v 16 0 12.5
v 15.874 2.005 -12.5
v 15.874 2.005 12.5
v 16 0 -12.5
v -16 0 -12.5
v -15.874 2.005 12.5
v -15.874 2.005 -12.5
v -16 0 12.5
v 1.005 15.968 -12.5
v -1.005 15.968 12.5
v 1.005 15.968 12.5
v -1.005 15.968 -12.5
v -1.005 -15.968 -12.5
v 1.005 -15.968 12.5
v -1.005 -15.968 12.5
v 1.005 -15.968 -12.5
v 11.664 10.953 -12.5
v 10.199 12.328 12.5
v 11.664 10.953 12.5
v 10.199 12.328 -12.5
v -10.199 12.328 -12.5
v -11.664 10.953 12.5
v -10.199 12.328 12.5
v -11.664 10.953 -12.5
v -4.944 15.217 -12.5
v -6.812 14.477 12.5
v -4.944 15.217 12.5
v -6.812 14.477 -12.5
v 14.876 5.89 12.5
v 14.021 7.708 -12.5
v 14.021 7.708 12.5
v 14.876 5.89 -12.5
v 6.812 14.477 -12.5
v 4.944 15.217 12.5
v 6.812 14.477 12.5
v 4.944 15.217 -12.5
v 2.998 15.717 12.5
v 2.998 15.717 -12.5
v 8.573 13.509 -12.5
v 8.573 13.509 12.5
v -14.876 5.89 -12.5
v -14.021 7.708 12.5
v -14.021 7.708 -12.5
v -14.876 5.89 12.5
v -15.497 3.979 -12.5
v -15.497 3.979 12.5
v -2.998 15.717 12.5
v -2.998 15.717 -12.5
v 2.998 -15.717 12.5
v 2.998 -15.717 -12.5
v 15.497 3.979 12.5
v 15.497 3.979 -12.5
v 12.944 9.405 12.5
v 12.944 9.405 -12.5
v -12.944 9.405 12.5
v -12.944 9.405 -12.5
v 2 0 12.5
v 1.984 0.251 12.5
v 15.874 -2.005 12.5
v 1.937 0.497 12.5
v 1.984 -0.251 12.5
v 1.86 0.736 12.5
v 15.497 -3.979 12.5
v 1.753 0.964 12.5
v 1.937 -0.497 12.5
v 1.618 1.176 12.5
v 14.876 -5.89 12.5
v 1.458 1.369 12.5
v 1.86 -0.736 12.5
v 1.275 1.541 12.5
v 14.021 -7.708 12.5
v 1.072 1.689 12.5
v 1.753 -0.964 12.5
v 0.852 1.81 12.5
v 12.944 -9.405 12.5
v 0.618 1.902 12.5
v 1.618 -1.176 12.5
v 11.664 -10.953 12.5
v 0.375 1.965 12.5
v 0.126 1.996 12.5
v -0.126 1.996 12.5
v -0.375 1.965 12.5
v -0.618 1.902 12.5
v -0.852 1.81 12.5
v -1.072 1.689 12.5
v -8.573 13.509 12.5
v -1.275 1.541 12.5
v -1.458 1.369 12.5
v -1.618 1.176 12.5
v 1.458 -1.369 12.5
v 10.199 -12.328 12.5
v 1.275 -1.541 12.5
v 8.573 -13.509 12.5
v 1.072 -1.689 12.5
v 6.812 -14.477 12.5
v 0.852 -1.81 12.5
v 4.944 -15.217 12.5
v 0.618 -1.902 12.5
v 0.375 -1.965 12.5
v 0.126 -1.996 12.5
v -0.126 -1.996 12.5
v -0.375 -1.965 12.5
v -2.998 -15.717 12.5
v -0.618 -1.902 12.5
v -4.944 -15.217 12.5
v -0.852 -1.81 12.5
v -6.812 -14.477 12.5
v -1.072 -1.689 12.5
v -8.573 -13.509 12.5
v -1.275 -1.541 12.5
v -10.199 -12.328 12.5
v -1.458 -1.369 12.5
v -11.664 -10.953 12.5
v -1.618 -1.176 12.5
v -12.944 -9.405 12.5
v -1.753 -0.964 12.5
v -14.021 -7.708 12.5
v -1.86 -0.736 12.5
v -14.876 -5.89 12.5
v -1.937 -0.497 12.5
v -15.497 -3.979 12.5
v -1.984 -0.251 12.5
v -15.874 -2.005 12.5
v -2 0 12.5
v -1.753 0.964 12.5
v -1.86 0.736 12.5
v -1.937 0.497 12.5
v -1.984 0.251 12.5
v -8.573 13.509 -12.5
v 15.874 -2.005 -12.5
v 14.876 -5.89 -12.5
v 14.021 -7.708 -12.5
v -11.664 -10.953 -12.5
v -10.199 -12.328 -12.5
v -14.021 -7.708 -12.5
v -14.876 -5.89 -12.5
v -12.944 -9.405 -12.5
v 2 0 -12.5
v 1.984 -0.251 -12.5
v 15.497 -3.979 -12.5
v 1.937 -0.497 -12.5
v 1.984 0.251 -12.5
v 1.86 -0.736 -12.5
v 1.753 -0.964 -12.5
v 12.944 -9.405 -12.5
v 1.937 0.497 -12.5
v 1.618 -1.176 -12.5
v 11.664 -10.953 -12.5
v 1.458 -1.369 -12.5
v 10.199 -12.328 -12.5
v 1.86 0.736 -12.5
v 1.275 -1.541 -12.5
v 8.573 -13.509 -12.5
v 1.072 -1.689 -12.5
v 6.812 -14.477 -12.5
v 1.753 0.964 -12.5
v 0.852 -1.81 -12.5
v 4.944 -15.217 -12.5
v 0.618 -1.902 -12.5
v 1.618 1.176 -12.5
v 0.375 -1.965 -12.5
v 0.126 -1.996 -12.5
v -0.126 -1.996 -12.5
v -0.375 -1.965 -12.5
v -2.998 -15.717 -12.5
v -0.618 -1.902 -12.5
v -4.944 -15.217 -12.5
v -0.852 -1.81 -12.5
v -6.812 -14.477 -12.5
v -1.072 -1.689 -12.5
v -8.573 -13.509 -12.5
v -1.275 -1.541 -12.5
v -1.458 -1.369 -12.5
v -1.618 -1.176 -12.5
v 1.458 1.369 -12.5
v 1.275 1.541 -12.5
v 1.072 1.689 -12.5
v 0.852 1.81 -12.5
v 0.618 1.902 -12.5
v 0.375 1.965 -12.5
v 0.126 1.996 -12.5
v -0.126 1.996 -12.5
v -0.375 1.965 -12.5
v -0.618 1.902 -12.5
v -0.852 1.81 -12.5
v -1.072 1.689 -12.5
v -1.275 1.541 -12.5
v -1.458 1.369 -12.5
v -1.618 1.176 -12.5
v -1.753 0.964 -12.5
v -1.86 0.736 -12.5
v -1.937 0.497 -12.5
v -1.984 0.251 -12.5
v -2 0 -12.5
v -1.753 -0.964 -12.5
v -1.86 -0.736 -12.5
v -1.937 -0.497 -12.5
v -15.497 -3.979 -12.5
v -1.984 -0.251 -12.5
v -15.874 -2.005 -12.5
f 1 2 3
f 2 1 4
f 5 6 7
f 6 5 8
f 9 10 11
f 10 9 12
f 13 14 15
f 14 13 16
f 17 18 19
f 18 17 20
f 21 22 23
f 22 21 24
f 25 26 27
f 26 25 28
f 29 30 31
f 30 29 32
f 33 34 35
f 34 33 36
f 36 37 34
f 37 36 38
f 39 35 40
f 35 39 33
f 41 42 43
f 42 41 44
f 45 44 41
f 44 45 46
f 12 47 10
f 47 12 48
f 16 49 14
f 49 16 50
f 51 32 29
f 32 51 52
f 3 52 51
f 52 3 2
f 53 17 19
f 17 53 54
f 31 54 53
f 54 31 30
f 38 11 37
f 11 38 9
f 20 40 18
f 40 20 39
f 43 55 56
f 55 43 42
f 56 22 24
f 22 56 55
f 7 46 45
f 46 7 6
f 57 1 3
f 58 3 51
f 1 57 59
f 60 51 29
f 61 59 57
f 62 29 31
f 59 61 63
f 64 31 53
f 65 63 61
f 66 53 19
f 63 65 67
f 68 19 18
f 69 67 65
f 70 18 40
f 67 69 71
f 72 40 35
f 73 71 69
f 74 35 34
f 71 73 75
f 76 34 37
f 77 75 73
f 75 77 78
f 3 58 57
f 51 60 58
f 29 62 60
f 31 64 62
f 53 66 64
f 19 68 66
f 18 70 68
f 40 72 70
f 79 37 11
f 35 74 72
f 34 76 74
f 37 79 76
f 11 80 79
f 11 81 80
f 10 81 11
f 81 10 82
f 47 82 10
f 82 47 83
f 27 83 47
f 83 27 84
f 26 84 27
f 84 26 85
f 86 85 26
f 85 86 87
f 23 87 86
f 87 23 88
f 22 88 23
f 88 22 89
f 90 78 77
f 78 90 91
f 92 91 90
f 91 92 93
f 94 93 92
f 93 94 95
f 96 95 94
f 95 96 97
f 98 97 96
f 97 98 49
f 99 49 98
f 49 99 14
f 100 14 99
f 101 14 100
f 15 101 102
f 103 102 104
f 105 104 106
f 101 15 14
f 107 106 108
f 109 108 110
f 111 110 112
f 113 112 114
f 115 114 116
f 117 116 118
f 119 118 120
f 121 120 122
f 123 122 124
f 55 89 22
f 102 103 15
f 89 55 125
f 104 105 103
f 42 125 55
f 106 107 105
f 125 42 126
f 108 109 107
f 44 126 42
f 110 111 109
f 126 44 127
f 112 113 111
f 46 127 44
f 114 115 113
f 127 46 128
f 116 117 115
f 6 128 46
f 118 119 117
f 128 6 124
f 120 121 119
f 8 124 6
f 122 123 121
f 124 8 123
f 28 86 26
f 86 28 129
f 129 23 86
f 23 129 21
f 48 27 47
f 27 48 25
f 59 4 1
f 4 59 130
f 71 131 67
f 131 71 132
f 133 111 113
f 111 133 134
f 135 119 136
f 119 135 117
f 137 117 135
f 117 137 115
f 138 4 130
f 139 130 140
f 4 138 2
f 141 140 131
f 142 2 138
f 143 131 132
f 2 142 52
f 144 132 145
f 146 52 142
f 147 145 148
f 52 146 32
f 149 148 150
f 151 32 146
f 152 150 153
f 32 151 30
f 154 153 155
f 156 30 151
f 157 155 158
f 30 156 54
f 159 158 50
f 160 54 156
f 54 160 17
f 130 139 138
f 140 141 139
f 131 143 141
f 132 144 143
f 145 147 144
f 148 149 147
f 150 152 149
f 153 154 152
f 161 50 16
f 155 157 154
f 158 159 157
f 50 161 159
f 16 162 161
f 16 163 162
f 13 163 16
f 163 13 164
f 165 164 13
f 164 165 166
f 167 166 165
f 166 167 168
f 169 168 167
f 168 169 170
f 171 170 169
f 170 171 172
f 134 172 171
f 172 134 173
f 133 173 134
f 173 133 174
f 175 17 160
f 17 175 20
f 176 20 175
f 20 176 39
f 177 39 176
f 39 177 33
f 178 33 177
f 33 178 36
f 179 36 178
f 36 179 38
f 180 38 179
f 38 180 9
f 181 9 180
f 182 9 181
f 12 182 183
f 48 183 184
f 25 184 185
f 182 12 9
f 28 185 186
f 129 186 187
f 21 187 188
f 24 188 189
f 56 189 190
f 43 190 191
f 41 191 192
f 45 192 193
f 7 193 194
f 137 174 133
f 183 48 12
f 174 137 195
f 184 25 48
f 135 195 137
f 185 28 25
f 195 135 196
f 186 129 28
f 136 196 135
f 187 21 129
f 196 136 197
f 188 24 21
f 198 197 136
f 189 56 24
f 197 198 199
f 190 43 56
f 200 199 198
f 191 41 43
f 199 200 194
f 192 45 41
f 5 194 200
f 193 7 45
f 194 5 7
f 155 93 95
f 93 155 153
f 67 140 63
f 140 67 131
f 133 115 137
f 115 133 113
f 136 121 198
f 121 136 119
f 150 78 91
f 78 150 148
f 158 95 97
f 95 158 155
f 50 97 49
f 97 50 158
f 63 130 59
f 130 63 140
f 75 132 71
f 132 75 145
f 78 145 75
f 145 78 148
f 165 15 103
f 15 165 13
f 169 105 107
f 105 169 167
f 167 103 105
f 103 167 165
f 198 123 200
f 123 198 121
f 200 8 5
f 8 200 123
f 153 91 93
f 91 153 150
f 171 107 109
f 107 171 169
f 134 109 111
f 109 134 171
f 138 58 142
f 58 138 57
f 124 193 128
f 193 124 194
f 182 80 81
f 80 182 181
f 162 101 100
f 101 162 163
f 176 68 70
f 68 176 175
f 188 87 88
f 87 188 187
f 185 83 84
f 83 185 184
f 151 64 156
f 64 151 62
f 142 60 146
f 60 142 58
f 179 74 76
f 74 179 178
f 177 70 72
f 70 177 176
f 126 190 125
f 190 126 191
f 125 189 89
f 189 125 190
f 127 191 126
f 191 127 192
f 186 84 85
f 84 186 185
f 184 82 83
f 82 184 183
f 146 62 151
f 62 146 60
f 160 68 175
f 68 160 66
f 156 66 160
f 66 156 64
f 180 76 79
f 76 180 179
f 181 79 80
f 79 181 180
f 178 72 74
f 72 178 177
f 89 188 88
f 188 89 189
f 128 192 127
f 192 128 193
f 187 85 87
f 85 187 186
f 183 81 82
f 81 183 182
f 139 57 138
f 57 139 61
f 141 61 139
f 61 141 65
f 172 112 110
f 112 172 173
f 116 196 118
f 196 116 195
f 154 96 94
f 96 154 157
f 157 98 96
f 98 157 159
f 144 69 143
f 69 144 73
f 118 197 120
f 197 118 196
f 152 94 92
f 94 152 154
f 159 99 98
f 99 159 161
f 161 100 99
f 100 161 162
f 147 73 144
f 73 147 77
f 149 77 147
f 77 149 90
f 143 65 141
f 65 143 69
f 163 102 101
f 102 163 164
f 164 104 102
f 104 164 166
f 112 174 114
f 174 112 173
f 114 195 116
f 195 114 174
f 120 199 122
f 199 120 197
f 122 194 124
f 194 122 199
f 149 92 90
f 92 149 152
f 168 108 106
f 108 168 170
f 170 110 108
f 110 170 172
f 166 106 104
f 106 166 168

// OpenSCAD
$fn = 50;


difference() {
	union() {
		translate(v = [0, 0, -12.5000000000]) {
			cylinder(h = 25, r = 16.0000000000);
		}
	}
	union() {
		translate(v = [0, 0, -100.0000000000]) {
			cylinder(h = 200, r = 2);
		}
	}
}
